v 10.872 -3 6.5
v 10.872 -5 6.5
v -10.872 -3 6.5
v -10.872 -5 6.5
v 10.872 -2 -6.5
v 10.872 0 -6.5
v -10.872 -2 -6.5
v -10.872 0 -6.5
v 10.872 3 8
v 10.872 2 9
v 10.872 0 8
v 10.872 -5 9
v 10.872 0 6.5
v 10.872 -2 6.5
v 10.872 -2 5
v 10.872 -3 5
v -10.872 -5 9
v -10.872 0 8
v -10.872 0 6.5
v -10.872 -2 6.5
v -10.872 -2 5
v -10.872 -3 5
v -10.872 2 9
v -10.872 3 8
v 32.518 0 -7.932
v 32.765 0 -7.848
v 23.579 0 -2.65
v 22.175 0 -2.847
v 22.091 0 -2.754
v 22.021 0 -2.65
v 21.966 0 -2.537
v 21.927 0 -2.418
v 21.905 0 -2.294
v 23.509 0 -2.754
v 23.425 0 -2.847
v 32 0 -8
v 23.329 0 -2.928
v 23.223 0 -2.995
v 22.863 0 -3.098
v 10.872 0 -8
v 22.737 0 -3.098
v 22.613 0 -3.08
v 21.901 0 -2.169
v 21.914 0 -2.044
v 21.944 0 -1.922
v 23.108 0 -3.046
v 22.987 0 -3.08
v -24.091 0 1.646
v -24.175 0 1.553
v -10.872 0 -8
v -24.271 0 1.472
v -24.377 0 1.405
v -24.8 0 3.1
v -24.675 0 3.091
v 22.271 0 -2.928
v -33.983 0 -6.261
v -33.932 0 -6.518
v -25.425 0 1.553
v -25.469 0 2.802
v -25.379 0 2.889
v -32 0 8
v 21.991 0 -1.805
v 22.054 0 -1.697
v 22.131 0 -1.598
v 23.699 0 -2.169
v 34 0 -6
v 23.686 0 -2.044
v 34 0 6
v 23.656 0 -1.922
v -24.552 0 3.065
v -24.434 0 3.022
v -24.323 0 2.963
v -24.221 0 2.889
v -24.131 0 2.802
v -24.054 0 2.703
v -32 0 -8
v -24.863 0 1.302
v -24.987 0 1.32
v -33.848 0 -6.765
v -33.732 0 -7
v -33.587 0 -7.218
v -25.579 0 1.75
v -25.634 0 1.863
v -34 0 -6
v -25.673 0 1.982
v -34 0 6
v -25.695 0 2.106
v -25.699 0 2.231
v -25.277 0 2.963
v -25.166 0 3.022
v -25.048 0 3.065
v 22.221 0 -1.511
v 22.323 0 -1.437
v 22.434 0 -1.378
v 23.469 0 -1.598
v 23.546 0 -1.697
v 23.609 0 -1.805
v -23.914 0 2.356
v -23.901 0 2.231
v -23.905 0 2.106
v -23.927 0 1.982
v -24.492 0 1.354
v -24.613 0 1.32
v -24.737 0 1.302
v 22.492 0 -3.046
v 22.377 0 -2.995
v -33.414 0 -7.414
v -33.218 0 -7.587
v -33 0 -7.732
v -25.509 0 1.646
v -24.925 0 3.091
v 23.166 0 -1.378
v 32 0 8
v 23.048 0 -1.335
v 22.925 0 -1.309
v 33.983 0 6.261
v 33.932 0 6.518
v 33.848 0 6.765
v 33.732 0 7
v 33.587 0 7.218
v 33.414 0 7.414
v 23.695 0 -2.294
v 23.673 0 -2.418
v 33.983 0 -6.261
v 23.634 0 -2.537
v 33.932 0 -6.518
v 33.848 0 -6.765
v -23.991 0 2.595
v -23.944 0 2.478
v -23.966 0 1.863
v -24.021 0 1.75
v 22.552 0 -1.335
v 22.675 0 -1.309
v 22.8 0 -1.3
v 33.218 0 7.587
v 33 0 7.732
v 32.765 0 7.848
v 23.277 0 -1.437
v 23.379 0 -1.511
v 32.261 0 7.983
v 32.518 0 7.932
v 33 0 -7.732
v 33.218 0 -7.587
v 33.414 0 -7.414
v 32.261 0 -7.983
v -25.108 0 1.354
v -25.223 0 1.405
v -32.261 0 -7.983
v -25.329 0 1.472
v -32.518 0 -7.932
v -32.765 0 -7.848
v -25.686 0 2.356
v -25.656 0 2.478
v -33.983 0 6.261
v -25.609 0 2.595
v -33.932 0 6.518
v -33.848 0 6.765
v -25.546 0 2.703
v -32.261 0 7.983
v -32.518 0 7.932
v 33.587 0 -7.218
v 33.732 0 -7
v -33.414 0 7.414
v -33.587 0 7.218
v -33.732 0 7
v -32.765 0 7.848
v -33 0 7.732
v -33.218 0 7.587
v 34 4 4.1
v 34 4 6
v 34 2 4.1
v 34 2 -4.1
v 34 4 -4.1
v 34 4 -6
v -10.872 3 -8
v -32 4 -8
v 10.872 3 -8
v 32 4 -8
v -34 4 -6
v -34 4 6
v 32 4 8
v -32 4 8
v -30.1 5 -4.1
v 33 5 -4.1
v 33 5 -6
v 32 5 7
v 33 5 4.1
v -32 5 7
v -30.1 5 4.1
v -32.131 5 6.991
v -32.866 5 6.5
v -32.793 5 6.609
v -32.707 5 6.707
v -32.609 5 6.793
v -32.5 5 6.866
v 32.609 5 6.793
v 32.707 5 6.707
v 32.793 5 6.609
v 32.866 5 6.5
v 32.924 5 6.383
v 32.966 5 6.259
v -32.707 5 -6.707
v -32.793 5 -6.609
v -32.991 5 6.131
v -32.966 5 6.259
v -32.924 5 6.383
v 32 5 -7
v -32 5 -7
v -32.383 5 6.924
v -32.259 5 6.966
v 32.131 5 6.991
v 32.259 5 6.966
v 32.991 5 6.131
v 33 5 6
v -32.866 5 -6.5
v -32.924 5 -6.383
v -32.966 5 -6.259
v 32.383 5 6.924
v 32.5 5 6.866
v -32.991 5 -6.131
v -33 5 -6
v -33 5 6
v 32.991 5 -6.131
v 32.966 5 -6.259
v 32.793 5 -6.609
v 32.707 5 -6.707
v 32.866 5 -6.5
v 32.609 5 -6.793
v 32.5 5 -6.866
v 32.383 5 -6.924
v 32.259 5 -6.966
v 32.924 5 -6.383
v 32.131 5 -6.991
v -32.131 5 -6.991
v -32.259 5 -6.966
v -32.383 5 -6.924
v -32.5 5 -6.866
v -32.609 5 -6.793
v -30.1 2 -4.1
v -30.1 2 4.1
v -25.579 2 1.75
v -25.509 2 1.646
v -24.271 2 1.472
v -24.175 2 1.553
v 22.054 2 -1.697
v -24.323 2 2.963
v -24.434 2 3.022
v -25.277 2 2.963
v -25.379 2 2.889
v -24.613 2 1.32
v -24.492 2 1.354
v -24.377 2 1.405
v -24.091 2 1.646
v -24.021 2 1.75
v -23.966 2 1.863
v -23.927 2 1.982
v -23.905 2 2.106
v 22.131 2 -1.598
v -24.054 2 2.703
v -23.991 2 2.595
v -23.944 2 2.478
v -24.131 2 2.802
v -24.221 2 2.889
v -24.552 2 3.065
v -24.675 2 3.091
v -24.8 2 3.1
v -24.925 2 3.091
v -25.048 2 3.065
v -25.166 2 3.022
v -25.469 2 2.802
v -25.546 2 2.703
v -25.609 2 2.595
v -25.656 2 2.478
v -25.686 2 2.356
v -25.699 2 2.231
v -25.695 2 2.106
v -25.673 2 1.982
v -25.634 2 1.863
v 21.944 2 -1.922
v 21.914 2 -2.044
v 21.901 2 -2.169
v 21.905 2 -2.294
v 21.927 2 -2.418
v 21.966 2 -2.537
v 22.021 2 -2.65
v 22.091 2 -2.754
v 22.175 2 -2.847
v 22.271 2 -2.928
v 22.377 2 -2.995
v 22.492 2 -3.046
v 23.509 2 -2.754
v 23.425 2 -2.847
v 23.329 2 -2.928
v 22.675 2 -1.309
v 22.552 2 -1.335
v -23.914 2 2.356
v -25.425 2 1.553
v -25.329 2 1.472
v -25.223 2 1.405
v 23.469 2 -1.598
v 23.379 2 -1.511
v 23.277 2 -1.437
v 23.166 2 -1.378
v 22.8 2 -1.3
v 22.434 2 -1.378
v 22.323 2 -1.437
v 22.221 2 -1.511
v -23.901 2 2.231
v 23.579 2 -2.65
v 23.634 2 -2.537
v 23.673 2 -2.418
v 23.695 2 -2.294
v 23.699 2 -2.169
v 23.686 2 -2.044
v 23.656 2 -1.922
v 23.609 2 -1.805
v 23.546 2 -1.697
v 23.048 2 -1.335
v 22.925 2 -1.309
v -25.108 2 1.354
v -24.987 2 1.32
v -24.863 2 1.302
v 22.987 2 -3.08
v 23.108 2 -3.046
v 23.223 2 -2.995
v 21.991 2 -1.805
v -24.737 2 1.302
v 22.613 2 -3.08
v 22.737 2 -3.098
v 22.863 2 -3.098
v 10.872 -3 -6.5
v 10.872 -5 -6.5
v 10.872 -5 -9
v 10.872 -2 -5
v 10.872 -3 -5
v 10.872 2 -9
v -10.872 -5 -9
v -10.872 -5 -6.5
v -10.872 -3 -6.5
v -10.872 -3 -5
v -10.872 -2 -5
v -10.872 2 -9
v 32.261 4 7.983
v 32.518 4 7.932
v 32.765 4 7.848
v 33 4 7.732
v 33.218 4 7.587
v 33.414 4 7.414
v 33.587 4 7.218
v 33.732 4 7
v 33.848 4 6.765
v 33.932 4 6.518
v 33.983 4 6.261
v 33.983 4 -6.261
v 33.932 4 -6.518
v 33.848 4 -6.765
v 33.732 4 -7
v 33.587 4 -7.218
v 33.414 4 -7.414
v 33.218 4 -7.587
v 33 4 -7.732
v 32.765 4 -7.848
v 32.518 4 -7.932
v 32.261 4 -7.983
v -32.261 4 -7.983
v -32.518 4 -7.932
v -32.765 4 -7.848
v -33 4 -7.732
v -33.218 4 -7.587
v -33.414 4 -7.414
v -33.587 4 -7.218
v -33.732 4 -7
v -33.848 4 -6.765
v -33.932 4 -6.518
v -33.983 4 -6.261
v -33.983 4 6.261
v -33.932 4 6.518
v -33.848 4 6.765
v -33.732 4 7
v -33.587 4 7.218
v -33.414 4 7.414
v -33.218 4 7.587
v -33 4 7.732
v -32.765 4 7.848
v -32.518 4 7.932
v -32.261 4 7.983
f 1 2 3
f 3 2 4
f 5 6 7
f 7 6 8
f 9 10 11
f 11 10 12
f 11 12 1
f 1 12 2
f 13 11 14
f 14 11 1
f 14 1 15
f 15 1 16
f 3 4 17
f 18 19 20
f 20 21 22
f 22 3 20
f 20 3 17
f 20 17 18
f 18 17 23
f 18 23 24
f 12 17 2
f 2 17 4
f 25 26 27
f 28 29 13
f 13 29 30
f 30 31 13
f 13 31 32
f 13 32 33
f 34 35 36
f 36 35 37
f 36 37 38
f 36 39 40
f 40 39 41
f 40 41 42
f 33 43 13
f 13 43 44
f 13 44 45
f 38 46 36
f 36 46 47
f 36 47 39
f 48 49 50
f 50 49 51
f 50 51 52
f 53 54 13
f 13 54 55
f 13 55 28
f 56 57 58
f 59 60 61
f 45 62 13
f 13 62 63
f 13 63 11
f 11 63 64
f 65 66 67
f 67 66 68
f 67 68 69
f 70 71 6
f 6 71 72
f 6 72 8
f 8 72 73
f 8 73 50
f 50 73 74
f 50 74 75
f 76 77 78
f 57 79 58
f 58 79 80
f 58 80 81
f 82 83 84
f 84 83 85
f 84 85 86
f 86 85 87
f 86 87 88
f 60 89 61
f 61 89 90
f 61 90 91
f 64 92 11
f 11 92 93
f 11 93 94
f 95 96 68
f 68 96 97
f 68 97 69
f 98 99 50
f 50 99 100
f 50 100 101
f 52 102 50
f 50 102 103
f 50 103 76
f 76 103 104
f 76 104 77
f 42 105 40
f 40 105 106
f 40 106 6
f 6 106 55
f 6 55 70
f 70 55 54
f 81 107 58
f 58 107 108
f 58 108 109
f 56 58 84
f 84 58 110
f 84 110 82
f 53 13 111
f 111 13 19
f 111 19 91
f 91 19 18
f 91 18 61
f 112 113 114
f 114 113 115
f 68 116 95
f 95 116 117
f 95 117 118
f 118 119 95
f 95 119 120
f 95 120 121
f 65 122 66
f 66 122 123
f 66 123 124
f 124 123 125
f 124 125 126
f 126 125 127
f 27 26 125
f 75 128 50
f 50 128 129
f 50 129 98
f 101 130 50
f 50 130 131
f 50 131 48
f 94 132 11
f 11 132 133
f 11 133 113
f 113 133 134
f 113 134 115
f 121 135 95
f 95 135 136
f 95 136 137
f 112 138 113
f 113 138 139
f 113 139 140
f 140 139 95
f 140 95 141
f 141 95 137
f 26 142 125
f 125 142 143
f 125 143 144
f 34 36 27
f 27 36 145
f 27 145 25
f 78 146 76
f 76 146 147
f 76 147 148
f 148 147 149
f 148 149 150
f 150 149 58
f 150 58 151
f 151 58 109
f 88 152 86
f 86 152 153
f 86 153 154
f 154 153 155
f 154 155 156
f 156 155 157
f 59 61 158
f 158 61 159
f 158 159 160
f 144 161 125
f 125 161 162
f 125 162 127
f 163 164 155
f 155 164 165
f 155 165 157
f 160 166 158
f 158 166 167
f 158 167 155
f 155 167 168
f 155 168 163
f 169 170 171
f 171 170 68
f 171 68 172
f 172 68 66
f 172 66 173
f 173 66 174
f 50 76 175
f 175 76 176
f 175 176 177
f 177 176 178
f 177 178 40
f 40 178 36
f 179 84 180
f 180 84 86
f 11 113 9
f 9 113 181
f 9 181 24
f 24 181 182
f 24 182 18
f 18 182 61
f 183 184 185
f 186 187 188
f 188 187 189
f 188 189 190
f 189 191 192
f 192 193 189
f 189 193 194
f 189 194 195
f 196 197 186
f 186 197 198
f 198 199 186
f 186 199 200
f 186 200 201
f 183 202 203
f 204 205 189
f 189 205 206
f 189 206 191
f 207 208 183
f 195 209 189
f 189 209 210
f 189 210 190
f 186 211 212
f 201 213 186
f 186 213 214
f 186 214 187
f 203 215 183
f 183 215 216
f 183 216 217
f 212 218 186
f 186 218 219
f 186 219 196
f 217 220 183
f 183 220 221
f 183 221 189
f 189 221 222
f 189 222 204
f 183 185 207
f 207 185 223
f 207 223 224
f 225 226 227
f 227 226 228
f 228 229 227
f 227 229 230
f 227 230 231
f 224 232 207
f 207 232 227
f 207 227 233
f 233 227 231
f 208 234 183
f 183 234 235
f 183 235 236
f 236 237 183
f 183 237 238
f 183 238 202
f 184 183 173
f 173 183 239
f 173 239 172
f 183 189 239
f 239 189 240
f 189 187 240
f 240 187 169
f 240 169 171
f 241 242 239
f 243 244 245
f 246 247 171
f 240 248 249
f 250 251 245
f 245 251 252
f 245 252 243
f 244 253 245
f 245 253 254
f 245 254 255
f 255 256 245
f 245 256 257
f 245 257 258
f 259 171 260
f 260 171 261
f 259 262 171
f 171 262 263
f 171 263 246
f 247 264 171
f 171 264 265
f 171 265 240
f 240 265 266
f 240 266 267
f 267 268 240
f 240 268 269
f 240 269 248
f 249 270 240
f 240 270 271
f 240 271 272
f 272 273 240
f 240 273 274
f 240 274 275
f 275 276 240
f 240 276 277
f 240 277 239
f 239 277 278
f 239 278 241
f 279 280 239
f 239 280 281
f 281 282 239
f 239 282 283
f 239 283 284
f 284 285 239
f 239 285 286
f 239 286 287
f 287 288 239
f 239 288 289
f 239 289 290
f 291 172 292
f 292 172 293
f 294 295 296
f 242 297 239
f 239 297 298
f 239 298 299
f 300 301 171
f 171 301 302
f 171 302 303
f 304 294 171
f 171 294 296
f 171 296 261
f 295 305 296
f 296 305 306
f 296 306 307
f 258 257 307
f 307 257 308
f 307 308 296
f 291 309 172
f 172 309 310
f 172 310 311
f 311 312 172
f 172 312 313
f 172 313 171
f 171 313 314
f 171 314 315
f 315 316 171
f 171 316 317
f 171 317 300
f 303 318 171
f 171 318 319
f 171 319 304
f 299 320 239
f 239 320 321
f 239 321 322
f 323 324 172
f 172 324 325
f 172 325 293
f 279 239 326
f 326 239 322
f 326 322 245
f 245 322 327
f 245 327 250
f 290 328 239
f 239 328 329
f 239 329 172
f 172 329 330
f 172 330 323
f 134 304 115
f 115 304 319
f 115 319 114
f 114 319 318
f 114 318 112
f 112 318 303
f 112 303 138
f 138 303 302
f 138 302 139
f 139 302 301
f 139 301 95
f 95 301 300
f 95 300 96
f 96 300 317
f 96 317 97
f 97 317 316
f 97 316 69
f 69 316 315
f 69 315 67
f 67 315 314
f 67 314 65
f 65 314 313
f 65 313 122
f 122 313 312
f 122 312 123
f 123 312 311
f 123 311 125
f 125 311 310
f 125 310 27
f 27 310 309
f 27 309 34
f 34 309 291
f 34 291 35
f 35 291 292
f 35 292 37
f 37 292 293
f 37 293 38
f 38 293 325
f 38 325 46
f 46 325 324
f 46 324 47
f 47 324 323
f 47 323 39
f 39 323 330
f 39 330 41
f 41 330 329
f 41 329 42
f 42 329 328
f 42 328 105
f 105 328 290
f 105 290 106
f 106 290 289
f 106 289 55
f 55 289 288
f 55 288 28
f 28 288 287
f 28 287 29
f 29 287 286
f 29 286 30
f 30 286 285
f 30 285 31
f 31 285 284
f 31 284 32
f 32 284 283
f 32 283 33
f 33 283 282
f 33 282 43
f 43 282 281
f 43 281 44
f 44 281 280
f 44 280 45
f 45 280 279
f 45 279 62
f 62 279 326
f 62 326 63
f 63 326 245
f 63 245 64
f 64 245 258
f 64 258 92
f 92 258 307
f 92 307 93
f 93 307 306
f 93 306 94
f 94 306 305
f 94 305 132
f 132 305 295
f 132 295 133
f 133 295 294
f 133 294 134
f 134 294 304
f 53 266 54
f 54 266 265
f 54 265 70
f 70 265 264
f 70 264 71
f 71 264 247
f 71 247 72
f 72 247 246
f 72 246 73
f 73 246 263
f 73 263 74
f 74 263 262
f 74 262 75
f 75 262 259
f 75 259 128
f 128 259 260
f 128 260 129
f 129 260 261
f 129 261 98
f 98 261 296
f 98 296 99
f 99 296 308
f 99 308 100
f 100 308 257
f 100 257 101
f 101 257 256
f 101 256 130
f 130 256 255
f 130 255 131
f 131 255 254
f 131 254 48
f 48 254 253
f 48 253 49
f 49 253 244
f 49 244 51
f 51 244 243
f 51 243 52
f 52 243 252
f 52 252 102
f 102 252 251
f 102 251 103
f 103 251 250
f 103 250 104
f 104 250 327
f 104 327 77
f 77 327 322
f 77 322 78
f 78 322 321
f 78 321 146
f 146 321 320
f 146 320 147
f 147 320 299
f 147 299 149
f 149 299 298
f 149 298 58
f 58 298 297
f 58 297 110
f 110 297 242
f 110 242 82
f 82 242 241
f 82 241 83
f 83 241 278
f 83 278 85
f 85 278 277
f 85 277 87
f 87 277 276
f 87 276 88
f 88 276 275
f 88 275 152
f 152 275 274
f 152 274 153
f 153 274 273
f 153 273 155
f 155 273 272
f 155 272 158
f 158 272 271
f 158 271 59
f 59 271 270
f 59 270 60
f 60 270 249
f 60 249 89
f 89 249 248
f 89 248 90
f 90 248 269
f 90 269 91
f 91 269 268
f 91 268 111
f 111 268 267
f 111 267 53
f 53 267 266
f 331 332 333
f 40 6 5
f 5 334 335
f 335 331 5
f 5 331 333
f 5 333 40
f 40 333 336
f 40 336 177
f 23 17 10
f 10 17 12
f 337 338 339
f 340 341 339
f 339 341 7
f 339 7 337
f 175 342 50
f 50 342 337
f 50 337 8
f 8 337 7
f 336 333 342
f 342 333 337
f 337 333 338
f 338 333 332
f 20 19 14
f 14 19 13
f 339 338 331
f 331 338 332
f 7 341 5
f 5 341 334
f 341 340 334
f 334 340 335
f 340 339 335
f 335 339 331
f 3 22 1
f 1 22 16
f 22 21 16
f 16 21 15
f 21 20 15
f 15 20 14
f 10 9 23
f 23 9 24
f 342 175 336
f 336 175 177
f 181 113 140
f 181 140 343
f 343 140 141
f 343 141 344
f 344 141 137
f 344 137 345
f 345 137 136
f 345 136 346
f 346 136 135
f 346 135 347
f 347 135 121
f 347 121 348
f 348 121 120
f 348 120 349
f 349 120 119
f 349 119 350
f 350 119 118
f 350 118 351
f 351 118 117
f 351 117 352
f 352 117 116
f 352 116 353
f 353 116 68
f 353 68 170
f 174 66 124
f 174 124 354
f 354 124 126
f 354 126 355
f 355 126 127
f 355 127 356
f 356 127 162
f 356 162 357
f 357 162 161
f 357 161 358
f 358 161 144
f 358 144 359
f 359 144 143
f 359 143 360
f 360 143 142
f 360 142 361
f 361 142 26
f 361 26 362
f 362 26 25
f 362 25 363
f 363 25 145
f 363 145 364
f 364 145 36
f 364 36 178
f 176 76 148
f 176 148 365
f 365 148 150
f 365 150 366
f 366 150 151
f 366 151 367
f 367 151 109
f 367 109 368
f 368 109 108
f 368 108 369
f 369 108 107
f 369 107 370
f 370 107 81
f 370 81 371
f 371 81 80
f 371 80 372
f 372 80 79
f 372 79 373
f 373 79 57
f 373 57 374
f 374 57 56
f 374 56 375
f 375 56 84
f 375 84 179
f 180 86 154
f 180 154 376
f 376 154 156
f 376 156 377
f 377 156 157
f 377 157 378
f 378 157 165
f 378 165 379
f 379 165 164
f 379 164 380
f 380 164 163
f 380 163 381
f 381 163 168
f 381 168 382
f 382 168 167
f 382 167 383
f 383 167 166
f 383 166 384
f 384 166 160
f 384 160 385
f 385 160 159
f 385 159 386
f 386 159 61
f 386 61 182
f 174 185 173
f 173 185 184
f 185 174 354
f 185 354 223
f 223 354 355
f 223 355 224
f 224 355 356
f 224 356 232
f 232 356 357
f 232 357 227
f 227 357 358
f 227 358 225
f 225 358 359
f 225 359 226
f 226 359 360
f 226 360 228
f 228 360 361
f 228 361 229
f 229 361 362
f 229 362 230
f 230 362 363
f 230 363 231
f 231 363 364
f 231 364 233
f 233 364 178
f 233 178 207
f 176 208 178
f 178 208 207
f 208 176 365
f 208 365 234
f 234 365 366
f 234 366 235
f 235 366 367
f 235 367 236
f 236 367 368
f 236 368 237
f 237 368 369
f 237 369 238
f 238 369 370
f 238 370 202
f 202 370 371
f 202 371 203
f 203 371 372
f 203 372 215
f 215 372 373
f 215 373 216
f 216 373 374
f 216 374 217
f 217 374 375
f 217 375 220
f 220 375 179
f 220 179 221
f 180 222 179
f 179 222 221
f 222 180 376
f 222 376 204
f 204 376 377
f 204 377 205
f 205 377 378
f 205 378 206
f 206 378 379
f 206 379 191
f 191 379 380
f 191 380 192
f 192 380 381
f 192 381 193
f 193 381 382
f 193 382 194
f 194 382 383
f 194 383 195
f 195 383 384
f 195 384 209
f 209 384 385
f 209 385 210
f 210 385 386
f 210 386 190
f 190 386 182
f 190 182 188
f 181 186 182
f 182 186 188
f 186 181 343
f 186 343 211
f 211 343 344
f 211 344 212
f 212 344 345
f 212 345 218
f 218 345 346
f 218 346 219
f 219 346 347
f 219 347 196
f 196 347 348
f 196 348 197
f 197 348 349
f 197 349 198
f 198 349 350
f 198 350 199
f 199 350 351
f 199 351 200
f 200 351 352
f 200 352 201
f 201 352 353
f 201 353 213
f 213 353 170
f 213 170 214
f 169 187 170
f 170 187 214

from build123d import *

# Parameters (mm, degrees)
SKETCH2_W           = 68
SKETCH2_H           = 16
BOSS_EXTRUDE1_DEPTH = 2
SKETCH3_W           = 68
SKETCH3_H           = 16
SKETCH3_W_2         = 60.2
SKETCH3_H_2         = 8.2
BOSS_EXTRUDE2_DEPTH = 3
SKETCH4_R           = 0.9
CUT_EXTRUDE1_DEPTH  = 36.057096286
SKETCH5_W           = 21.74313044
SKETCH5_H           = 18
BOSS_EXTRUDE3_DEPTH = 5
SKETCH6_W           = 13
SKETCH6_H           = 5
CUT_EXTRUDE3_DEPTH  = 21.743130441
SKETCH7_W           = 1.5
SKETCH7_H           = 1
BOSS_EXTRUDE4_DEPTH = 21.743130441
CHAMFER1_SIZE       = 3
SKETCH8_W           = 3.9
SKETCH8_H           = 8.2
CUT_EXTRUDE4_DEPTH  = 3
FILLET1_R           = 2
CHAMFER2_SIZE       = 1


with BuildPart() as part:
    # Sketch2 → Boss-Extrude1 (new body)
    with BuildSketch(Plane(origin=(0, 0, 0), x_dir=(1, 0, 0), z_dir=(0, 1, 0))):
        Rectangle(SKETCH2_W, SKETCH2_H)
    extrude(amount=BOSS_EXTRUDE1_DEPTH)

    # Sketch3 → Boss-Extrude2 (add)
    with BuildSketch(Plane(origin=(0, 2, 0), x_dir=(1, 0, 0), z_dir=(0, 1, 0))):
        Rectangle(SKETCH3_W, SKETCH3_H)
        Rectangle(SKETCH3_W_2, SKETCH3_H_2, mode=Mode.SUBTRACT)
    extrude(amount=BOSS_EXTRUDE2_DEPTH)

    # Sketch4 → Cut-Extrude1 (cut, through all)
    with BuildSketch(Plane(origin=(0, 2, 0), x_dir=(1, 0, 0), z_dir=(0, 1, 0))):
        with Locations(Location((-24.8, -2.2, 0), (0, 0, 270))):
            Circle(SKETCH4_R)
        with Locations(Location((22.8, 2.2, 0), (0, 0, 270))):
            Circle(SKETCH4_R)
    extrude(amount=-CUT_EXTRUDE1_DEPTH, mode=Mode.SUBTRACT)

    # Sketch5 → Boss-Extrude3 (add)
    with BuildSketch(Plane.XZ):
        Rectangle(SKETCH5_W, SKETCH5_H)
    extrude(amount=BOSS_EXTRUDE3_DEPTH)

    # Sketch6 → Cut-Extrude3 (cut)
    with BuildSketch(Plane.ZY.offset(10.87156522)):
        with Locations((0, -2.5)):
            Rectangle(SKETCH6_W, SKETCH6_H)
    extrude(amount=-CUT_EXTRUDE3_DEPTH, mode=Mode.SUBTRACT)

    # Sketch7 → Boss-Extrude4 (add)
    with BuildSketch(Plane.ZY.offset(10.87156522)):
        with Locations((-5.75, -2.5)):
            Rectangle(SKETCH7_W, SKETCH7_H)
        with Locations((5.75, -2.5)):
            Rectangle(SKETCH7_W, SKETCH7_H)
    extrude(amount=-BOSS_EXTRUDE4_DEPTH)

    # Chamfer1
    # the kernel refuses this chamfer: 3 mm, written as the material it adds along each edge
    with BuildSketch(Plane(origin=(10.87156522, 0, 8), x_dir=(0, 0.9996219169112968, -0.02749587661058649), z_dir=(-1, 0, 0))) as chamfer1_piece_1_section:
        Polygon((CHAMFER1_SIZE * 0.999621916911, -CHAMFER1_SIZE * 0.0274958766106), (-CHAMFER1_SIZE * 0.0274958766106, -CHAMFER1_SIZE * 0.999621916911), (0, 0), align=None)
    chamfer1_piece_1 = extrude(amount=21.743130441, mode=Mode.PRIVATE)
    chamfer1_piece_1 = split(chamfer1_piece_1, bisect_by=Plane(origin=(0, 1.266666667, 9), z_dir=(0, 0, -1)), keep=Keep.TOP, mode=Mode.PRIVATE)
    add(chamfer1_piece_1)
    with BuildSketch(Plane(origin=(-10.87156522, 0, -8), x_dir=(0, 0.9996219169112968, 0.02749587661058649), z_dir=(1, 0, 0))) as chamfer1_piece_2_section:
        Polygon((CHAMFER1_SIZE * 0.999621916911, -CHAMFER1_SIZE * 0.0274958766106), (-CHAMFER1_SIZE * 0.0274958766106, -CHAMFER1_SIZE * 0.999621916911), (0, 0), align=None)
    chamfer1_piece_2 = extrude(amount=21.743130441, mode=Mode.PRIVATE)
    chamfer1_piece_2 = split(chamfer1_piece_2, bisect_by=Plane(origin=(0, 1.266666667, -9), z_dir=(0, 0, 1)), keep=Keep.TOP, mode=Mode.PRIVATE)
    add(chamfer1_piece_2)

    # Sketch8 → Cut-Extrude4 (cut)
    with BuildSketch(Plane(origin=(0, 5, 0), x_dir=(1, 0, 0), z_dir=(0, 1, 0))):
        with Locations((32.05, 0)):
            Rectangle(SKETCH8_W, SKETCH8_H)
    extrude(amount=-CUT_EXTRUDE4_DEPTH, mode=Mode.SUBTRACT)

    # Fillet1
    fillet1_edges = [part.edges().sort_by_distance(p)[0] for p in [
        (34, 2.5, 8),
        (-34, 2.5, 8),
        (-34, 2.5, -8),
        (34, 2.5, -8),
    ]]
    fillet(fillet1_edges, radius=FILLET1_R)

    # Chamfer2
    chamfer2_edges = [part.edges().sort_by_distance(p)[0] for p in [
        (34, 5, -5.05),
        (34, 5, 5.05),
        (0, 5, 8),
        (0, 5, -8),
        (-34, 5, 0),
        (-33.414213562, 5, 7.414213562),
        (-33.414213562, 5, -7.414213562),
        (33.414213562, 5, -7.414213562),
        (33.414213562, 5, 7.414213562),
    ]]
    chamfer(chamfer2_edges, length=CHAMFER2_SIZE)


solid = part.part
